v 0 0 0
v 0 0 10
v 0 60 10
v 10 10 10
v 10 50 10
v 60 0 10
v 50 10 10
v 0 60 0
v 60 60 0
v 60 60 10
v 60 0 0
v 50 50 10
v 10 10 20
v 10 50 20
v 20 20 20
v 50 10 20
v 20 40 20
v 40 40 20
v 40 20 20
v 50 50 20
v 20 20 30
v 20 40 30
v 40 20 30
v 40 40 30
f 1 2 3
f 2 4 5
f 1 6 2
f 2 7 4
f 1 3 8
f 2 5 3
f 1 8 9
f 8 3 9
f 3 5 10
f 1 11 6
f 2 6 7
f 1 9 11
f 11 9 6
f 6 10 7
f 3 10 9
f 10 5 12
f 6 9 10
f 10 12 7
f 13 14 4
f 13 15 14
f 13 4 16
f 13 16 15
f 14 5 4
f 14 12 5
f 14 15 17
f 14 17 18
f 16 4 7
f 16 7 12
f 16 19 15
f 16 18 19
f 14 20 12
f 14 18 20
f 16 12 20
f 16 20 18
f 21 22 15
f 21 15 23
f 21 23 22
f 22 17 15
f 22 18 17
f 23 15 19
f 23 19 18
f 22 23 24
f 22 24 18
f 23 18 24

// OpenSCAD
union() {
    cube([60, 60, 10]);
    translate([(60-40)/2, (60-40)/2, 10])
        cube([40, 40, 10]);
    translate([(60-20)/2, (60-20)/2, 20])
        cube([20, 20, 10]);
}
